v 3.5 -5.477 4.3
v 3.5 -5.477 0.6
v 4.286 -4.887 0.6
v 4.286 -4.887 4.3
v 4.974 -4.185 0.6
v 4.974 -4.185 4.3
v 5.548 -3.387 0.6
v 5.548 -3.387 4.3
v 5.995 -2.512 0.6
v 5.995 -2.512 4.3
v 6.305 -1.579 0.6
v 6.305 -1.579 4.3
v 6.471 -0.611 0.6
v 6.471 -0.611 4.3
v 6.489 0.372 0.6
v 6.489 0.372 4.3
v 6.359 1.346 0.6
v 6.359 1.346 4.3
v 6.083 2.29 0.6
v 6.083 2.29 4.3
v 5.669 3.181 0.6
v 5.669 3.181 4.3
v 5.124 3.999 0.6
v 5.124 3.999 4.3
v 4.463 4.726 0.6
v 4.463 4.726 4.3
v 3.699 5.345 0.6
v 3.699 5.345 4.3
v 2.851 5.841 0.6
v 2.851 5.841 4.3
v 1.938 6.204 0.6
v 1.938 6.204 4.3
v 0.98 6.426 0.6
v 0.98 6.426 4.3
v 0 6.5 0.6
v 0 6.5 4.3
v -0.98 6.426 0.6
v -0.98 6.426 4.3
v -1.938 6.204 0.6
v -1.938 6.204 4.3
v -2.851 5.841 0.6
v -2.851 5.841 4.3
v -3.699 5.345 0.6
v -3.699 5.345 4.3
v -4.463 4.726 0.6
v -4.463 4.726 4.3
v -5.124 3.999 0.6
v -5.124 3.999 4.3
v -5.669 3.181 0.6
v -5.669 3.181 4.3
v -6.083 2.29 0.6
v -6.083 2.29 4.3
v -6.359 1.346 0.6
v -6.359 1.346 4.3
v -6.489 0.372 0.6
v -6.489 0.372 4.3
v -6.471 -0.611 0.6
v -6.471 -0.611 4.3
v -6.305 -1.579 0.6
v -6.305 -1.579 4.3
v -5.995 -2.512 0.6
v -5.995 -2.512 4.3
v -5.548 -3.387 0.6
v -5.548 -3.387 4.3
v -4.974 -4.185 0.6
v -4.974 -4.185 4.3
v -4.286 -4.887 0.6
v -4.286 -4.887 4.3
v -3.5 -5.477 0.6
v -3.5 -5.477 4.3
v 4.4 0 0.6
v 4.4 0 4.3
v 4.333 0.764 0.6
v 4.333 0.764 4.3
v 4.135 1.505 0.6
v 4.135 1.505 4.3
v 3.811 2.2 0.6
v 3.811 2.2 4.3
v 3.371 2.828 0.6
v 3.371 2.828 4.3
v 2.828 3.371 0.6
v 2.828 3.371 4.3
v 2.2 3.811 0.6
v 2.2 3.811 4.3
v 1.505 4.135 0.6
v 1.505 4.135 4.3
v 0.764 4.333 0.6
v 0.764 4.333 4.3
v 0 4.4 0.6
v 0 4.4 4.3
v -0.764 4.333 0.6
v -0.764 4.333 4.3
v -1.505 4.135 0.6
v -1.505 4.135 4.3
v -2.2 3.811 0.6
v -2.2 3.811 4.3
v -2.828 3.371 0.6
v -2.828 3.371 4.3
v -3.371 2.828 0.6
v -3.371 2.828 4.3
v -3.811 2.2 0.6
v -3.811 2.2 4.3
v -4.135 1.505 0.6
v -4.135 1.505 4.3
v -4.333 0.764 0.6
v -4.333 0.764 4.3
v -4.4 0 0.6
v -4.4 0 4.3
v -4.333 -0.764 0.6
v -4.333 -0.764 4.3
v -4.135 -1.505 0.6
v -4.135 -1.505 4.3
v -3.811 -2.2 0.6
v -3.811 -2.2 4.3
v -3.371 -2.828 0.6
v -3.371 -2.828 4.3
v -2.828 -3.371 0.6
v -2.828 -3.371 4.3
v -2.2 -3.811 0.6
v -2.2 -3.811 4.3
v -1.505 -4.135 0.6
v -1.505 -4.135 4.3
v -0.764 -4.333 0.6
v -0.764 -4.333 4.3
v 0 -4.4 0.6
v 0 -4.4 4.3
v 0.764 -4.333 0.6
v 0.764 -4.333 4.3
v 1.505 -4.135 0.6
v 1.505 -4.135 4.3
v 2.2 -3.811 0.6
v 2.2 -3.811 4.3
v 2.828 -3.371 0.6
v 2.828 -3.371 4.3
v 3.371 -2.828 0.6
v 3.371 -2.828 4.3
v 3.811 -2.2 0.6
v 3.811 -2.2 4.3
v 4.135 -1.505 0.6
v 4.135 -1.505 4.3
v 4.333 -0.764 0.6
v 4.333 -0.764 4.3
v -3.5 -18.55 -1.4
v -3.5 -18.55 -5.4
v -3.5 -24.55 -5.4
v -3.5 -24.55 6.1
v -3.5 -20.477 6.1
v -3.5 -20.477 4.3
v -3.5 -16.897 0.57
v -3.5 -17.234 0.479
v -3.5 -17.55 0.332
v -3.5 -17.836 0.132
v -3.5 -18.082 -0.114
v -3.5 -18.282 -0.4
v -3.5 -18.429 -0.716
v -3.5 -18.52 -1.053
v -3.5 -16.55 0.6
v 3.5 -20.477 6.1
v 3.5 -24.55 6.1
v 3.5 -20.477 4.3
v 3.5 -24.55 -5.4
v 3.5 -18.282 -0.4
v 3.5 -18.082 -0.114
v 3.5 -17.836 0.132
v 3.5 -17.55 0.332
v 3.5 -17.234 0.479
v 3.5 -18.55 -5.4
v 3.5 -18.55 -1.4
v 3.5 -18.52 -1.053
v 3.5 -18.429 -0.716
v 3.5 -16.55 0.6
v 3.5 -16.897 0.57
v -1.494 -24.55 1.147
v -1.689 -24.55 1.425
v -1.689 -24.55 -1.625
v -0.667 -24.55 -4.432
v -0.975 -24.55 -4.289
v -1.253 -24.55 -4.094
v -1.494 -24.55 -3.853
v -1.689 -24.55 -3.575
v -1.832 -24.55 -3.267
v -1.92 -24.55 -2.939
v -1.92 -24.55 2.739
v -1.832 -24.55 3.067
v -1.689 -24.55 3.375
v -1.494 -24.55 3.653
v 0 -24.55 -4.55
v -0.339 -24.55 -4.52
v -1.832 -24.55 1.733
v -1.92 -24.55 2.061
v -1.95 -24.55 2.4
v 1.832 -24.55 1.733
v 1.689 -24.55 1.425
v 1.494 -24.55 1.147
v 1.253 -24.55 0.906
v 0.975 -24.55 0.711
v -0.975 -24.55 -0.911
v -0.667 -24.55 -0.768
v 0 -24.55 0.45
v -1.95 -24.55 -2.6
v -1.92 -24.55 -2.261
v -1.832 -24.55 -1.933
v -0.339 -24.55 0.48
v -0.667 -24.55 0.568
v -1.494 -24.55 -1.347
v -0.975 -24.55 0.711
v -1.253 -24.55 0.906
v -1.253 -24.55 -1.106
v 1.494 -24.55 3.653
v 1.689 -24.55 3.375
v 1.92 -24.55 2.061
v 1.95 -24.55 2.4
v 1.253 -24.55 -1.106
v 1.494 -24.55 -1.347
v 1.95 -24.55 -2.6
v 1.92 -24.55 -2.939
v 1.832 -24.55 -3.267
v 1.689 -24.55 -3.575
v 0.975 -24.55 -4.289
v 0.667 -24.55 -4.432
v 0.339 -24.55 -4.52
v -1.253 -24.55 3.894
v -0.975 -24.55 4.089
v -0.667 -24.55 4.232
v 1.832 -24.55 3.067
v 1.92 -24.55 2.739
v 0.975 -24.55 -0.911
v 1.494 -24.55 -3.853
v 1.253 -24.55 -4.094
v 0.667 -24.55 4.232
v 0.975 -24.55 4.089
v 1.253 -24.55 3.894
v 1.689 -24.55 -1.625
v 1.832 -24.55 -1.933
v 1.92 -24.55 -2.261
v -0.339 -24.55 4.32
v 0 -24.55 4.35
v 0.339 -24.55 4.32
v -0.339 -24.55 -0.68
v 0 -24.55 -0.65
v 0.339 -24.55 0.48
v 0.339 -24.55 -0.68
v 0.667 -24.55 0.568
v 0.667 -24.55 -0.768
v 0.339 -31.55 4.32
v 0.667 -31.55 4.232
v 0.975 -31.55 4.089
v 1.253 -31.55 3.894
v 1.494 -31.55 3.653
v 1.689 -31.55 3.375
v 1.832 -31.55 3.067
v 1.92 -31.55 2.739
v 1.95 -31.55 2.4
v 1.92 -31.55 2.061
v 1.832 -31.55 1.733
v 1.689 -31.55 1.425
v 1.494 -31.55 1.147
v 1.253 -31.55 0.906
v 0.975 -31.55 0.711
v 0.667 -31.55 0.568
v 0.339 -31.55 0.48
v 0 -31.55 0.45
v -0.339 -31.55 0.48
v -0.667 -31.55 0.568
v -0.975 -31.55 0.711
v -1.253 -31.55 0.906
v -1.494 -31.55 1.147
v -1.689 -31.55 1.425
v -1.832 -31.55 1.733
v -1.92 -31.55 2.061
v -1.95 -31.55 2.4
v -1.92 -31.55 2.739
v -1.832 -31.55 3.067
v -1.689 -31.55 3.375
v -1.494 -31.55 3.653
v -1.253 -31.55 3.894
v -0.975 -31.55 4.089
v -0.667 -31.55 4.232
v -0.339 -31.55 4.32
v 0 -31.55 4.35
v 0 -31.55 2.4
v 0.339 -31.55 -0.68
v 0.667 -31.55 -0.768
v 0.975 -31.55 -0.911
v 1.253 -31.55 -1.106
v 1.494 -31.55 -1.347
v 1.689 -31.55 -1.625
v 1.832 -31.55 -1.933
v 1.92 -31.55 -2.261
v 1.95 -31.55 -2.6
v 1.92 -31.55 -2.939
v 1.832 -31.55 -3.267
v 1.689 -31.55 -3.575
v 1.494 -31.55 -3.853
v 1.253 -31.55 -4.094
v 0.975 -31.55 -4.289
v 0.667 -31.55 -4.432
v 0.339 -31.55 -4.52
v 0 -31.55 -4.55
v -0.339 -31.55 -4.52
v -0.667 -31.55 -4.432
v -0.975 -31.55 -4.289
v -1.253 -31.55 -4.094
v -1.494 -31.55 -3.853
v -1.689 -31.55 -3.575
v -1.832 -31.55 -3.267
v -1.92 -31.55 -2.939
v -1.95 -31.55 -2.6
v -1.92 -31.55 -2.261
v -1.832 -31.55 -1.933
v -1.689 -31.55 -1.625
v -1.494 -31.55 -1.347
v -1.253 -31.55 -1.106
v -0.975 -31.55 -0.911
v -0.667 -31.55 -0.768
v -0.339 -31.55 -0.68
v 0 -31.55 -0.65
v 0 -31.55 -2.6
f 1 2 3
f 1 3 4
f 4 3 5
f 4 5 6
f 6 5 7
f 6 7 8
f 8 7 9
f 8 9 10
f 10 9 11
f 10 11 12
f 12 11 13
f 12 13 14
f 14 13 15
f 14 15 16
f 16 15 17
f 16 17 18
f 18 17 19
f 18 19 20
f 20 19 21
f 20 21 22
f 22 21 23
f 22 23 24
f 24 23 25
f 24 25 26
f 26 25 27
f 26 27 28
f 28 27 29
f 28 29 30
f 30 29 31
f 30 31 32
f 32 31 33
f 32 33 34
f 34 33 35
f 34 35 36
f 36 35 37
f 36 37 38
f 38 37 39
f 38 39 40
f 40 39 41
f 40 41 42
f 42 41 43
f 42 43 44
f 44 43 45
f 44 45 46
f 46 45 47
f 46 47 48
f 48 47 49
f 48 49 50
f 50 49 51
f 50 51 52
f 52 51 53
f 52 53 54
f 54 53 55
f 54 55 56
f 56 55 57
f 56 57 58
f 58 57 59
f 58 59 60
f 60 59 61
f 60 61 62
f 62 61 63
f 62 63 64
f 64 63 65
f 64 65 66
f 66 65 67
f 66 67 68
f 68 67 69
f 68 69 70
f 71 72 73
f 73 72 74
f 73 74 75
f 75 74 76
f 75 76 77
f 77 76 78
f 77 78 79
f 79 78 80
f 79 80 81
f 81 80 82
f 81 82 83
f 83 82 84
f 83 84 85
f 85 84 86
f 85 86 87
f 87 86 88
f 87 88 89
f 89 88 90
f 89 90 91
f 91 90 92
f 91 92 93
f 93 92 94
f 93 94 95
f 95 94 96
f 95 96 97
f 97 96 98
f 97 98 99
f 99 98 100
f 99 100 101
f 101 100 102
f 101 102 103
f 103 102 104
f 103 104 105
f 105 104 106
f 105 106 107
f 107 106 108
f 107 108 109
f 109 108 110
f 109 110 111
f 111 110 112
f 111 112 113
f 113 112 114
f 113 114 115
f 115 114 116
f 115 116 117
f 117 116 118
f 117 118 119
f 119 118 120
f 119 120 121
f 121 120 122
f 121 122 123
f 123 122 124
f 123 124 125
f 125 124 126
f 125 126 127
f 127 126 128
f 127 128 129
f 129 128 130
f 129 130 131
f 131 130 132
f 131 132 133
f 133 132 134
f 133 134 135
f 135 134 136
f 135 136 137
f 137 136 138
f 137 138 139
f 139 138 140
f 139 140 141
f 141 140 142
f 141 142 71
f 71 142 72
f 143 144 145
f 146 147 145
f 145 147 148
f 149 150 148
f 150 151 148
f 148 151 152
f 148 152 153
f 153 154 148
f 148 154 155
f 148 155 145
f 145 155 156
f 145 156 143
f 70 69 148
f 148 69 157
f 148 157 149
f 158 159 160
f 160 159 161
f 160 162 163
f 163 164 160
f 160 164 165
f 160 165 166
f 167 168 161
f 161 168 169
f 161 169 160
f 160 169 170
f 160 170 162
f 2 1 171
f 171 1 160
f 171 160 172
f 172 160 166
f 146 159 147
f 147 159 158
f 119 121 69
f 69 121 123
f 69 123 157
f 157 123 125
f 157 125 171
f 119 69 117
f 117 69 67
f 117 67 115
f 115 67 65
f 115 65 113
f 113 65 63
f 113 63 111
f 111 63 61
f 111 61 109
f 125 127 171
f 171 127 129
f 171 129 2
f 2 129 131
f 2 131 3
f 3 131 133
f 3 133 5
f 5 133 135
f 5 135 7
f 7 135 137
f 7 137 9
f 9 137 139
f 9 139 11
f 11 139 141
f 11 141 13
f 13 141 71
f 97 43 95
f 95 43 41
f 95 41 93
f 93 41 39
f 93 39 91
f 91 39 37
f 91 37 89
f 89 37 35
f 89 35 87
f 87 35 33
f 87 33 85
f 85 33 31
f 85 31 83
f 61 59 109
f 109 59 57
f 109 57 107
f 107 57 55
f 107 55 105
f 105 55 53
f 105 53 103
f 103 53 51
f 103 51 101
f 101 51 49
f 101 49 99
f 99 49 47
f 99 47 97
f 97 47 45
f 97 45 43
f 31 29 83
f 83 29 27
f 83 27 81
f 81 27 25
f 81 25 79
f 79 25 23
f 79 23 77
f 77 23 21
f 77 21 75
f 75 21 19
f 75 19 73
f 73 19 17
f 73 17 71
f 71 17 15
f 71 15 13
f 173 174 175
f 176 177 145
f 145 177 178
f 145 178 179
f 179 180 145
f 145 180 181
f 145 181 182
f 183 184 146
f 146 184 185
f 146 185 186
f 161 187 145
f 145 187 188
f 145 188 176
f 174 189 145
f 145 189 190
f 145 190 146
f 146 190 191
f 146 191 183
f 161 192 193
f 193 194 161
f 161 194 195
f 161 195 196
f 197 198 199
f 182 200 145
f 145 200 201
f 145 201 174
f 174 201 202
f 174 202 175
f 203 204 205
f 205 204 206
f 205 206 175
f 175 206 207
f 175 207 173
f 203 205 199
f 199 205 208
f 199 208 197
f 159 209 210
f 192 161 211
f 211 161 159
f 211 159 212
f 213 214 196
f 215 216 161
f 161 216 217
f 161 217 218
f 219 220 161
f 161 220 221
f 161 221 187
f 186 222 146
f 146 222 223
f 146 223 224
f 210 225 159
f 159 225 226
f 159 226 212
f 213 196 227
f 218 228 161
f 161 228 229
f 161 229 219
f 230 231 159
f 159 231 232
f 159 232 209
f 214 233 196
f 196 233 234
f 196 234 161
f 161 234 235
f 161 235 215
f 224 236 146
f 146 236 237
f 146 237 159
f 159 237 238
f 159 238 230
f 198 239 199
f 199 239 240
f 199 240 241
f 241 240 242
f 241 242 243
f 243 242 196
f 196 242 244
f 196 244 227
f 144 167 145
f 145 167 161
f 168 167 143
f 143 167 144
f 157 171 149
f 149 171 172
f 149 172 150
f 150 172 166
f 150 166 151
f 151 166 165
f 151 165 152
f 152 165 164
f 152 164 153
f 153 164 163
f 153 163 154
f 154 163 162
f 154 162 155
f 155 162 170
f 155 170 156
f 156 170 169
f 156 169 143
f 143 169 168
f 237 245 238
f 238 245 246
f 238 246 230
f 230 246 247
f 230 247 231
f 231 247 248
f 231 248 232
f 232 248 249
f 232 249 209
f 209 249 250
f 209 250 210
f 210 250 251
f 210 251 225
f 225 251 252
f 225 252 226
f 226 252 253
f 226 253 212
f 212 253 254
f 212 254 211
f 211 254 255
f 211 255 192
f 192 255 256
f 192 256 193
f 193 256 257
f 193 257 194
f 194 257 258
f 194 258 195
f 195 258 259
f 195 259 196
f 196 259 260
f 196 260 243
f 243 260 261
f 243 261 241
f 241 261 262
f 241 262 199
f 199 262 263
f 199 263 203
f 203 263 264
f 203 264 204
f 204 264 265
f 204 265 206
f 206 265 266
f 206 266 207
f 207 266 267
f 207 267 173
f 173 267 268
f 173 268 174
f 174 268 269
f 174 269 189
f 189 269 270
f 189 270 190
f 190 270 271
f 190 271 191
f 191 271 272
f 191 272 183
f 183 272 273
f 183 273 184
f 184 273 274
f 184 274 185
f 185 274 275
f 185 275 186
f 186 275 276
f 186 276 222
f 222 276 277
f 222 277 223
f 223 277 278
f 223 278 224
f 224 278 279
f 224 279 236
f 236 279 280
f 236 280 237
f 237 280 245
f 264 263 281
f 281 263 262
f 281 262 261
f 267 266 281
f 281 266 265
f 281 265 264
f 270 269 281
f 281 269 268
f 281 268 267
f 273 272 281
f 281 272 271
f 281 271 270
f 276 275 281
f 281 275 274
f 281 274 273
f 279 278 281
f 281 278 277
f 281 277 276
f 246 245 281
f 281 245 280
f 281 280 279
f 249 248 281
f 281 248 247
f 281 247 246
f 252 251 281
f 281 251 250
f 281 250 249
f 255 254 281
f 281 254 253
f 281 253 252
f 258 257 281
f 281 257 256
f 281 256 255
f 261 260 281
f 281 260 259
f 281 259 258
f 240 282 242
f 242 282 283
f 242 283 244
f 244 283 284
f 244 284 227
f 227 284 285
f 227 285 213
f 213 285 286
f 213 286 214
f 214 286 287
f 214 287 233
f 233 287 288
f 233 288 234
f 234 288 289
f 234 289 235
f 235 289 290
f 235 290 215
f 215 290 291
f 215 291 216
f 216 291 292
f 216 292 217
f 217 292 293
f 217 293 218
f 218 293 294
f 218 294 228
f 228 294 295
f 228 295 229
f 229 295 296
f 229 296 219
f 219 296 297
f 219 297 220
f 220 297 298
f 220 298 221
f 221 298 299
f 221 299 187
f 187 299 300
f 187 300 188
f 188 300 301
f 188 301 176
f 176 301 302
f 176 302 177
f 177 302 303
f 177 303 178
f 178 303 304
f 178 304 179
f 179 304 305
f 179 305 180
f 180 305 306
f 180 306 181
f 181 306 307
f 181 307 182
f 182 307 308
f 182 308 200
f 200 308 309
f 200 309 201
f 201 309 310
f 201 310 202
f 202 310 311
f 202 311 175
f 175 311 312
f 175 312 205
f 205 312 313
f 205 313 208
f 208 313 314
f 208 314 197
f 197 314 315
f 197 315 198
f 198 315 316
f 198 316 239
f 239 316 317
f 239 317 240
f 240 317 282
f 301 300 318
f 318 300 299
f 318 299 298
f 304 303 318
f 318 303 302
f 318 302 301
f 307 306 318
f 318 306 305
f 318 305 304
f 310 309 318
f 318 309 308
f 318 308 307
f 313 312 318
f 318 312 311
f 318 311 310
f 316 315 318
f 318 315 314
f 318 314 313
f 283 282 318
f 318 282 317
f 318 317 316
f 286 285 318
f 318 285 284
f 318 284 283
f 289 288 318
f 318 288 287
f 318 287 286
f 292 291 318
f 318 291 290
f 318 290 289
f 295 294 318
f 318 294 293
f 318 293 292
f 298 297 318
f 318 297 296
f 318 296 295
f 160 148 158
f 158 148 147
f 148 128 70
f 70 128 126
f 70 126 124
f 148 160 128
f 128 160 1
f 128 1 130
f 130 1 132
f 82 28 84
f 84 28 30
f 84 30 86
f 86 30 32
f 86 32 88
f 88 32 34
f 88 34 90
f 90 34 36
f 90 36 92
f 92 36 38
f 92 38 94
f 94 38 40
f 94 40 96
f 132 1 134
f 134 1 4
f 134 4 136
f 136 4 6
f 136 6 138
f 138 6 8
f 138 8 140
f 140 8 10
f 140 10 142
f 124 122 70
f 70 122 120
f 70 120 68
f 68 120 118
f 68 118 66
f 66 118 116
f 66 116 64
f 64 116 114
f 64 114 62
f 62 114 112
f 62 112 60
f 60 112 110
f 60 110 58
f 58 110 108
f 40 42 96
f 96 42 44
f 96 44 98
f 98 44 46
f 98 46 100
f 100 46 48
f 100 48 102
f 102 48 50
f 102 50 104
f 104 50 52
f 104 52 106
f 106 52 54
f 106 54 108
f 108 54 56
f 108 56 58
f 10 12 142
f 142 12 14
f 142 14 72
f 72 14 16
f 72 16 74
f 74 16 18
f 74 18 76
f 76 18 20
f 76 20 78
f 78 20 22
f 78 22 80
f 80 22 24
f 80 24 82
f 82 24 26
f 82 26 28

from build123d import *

# Parameters (mm, degrees)
BOSS_EXTRUDE1_DEPTH     = 3.7
SKETCH2_W               = 0.6
SKETCH2_H               = 16.95
CUT_EXTRUDE1_DEPTH      = 10
CUT_EXTRUDE1_DEPTH_BACK = 10
SKETCH3_R               = 2.95
SKETCH3_R_2             = 1.5
BOSS_EXTRUDE2_DEPTH     = 3.1
SKETCH4_R               = 2.5
CUT_EXTRUDE2_DEPTH      = 1.5
SKETCH5_R               = 1.5
BOSS_EXTRUDE3_DEPTH     = 0.4
SKETCH6_R               = 2.95
BOSS_EXTRUDE4_DEPTH     = 2.4
SKETCH7_W               = 22.104564564
SKETCH7_H               = 50.546801486
CUT_EXTRUDE3_DEPTH      = 0.6
SKETCH8_R               = 1.5
BOSS_EXTRUDE5_DEPTH     = 2.6
SKETCH9_R               = 5.5
SKETCH9_R_2             = 3.5
BOSS_EXTRUDE6_DEPTH     = 5.5
SKETCH10_W              = 7
SKETCH10_H              = 7
CUT_EXTRUDE4_DEPTH      = 5.5
SKETCH11_W              = 20.865326807
SKETCH11_H              = 17.809349761
CUT_EXTRUDE5_DEPTH      = 10
SKETCH12_W              = 7
SKETCH12_H              = 6
BOSS_EXTRUDE7_DEPTH     = 6
FILLET1_R               = 2
SKETCH13_R              = 1.95
BOSS_EXTRUDE8_DEPTH     = 7
SKETCH14_R              = 2.95
CUT_EXTRUDE6_DEPTH      = 1.5
SKETCH15_R              = 2.95
BOSS_EXTRUDE9_DEPTH     = 4
SKETCH16_R              = 4.4
CUT_EXTRUDE7_DEPTH      = 34.729104643
SKETCH19_W              = 21.129428132
SKETCH19_H              = 30.590898574
CUT_EXTRUDE10_DEPTH     = 0.3


with BuildPart() as part:
    # Sketch1 → Boss-Extrude1 (new body)
    with BuildSketch(Plane.XY):
        with BuildLine():
            ThreePointArc((3.5, -5.477225575), (0, -6.5), (-3.5, -5.477225575))
            Line((-3.5, -5.477225575), (-3.5, -29.522774425))
            ThreePointArc((-3.5, -29.522774425), (0, -28.5), (3.5, -29.522774425))
            Line((3.5, -29.522774425), (3.5, -5.477225575))
        make_face()
        with BuildLine():
            ThreePointArc((-3.5, -4.242640687), (-4.974937186, -2.34520788), (-5.5, 0))
            ThreePointArc((-5.5, 0), (-4.387482194, 3.31662479), (-1.5, 5.291502622))
            ThreePointArc((-1.5, 5.291502622), (0, 5.5), (1.5, 5.291502622))
            ThreePointArc((1.5, 5.291502622), (4.387482194, 3.31662479), (5.5, 0))
            ThreePointArc((5.5, 0), (4.974937186, -2.34520788), (3.5, -4.242640687))
            Line((3.5, -4.242640687), (3.5, -5.477225575))
            ThreePointArc((3.5, -5.477225575), (5.700877125, -3.122498999), (6.5, 0))
            ThreePointArc((6.5, 0), (-3.122498999, 5.700877125), (-3.5, -5.477225575))
            Line((-3.5, -5.477225575), (-3.5, -4.242640687))
        make_face()
        with BuildLine():
            ThreePointArc((3.5, -4.242640687), (0, -5.5), (-3.5, -4.242640687))
            Line((-3.5, -4.242640687), (-3.5, -5.477225575))
            ThreePointArc((-3.5, -5.477225575), (0, -6.5), (3.5, -5.477225575))
            Line((3.5, -5.477225575), (3.5, -4.242640687))
        make_face()
        with BuildLine():
            ThreePointArc((3.5, 0), (0, -3.5), (-3.5, 0))
            Line((-3.5, 0), (-3.5, -4.242640687))
            ThreePointArc((-3.5, -4.242640687), (0, -5.5), (3.5, -4.242640687))
            Line((3.5, -4.242640687), (3.5, 0))
        make_face()
        with BuildLine():
            ThreePointArc((-3.5, -4.242640687), (-4.974937186, -2.34520788), (-5.5, 0))
            ThreePointArc((-5.5, 0), (-4.387482194, 3.31662479), (-1.5, 5.291502622))
            ThreePointArc((-1.5, 5.291502622), (0, 5.5), (1.5, 5.291502622))
            ThreePointArc((1.5, 5.291502622), (4.387482194, 3.31662479), (5.5, 0))
            ThreePointArc((5.5, 0), (4.974937186, -2.34520788), (3.5, -4.242640687))
            Line((3.5, -4.242640687), (3.5, -5.477225575))
            ThreePointArc((3.5, -5.477225575), (5.700877125, -3.122498999), (6.5, 0))
            ThreePointArc((6.5, 0), (-3.122498999, 5.700877125), (-3.5, -5.477225575))
            Line((-3.5, -5.477225575), (-3.5, -4.242640687))
        make_face()
        with BuildLine():
            ThreePointArc((3.5, -4.242640687), (0, -5.5), (-3.5, -4.242640687))
            Line((-3.5, -4.242640687), (-3.5, -5.477225575))
            ThreePointArc((-3.5, -5.477225575), (0, -6.5), (3.5, -5.477225575))
            Line((3.5, -5.477225575), (3.5, -4.242640687))
        make_face()
        with BuildLine():
            ThreePointArc((3.5, -29.522774425), (0, -28.5), (-3.5, -29.522774425))
            Line((-3.5, -29.522774425), (-3.5, -30.757359313))
            ThreePointArc((-3.5, -30.757359313), (0, -29.5), (3.5, -30.757359313))
            Line((3.5, -30.757359313), (3.5, -29.522774425))
        make_face()
        with BuildLine():
            Line((-3.5, -30.757359313), (-3.5, -29.522774425))
            ThreePointArc((-3.5, -29.522774425), (-3.122498999, -40.700877125), (6.5, -35))
            ThreePointArc((6.5, -35), (5.700877125, -31.877501001), (3.5, -29.522774425))
            Line((3.5, -29.522774425), (3.5, -30.757359313))
            ThreePointArc((3.5, -30.757359313), (4.974937186, -32.65479212), (5.5, -35))
            ThreePointArc((5.5, -35), (4.387482194, -38.31662479), (1.5, -40.291502622))
            ThreePointArc((1.5, -40.291502622), (0, -40.5), (-1.5, -40.291502622))
            ThreePointArc((-1.5, -40.291502622), (-4.387482194, -38.31662479), (-5.5, -35))
            ThreePointArc((-5.5, -35), (-4.974937186, -32.65479212), (-3.5, -30.757359313))
        make_face()
        with BuildLine():
            ThreePointArc((3.5, -29.522774425), (0, -28.5), (-3.5, -29.522774425))
            Line((-3.5, -29.522774425), (-3.5, -30.757359313))
            ThreePointArc((-3.5, -30.757359313), (0, -29.5), (3.5, -30.757359313))
            Line((3.5, -30.757359313), (3.5, -29.522774425))
        make_face()
        with BuildLine():
            Line((-3.5, -30.757359313), (-3.5, -29.522774425))
            ThreePointArc((-3.5, -29.522774425), (-3.122498999, -40.700877125), (6.5, -35))
            ThreePointArc((6.5, -35), (5.700877125, -31.877501001), (3.5, -29.522774425))
            Line((3.5, -29.522774425), (3.5, -30.757359313))
            ThreePointArc((3.5, -30.757359313), (4.974937186, -32.65479212), (5.5, -35))
            ThreePointArc((5.5, -35), (4.387482194, -38.31662479), (1.5, -40.291502622))
            ThreePointArc((1.5, -40.291502622), (0, -40.5), (-1.5, -40.291502622))
            ThreePointArc((-1.5, -40.291502622), (-4.387482194, -38.31662479), (-5.5, -35))
            ThreePointArc((-5.5, -35), (-4.974937186, -32.65479212), (-3.5, -30.757359313))
        make_face()
        with BuildLine():
            ThreePointArc((3.5, -30.757359313), (0, -29.5), (-3.5, -30.757359313))
            Line((-3.5, -30.757359313), (-3.5, -35))
            ThreePointArc((-3.5, -35), (0, -31.5), (3.5, -35))
            Line((3.5, -35), (3.5, -30.757359313))
        make_face()
        with BuildLine():
            Line((-3.5, -35), (-3.5, -30.757359313))
            ThreePointArc((-3.5, -30.757359313), (-4.974937186, -32.65479212), (-5.5, -35))
            Line((-5.5, -35), (-3.5, -35))
        make_face()
        with BuildLine():
            ThreePointArc((5.5, -35), (4.974937186, -32.65479212), (3.5, -30.757359313))
            Line((3.5, -30.757359313), (3.5, -35))
            Line((3.5, -35), (5.5, -35))
        make_face()
        with BuildLine():
            ThreePointArc((3.5, -35), (0, -31.5), (-3.5, -35))
            Line((-3.5, -35), (-2.95, -35))
            ThreePointArc((-2.95, -35), (0, -32.05), (2.95, -35))
            Line((2.95, -35), (3.5, -35))
        make_face()
        with BuildLine():
            Line((-2.95, -35), (-3.5, -35))
            ThreePointArc((-3.5, -35), (-2.958039892, -36.870828693), (-1.5, -38.16227766))
            ThreePointArc((-1.5, -38.16227766), (0, -38.5), (1.5, -38.16227766))
            ThreePointArc((1.5, -38.16227766), (2.958039892, -36.870828693), (3.5, -35))
            Line((3.5, -35), (2.95, -35))
            ThreePointArc((2.95, -35), (0, -37.95), (-2.95, -35))
        make_face()
        with BuildLine():
            ThreePointArc((3.5, -35), (0, -31.5), (-3.5, -35))
            Line((-3.5, -35), (-2.95, -35))
            ThreePointArc((-2.95, -35), (0, -32.05), (2.95, -35))
            Line((2.95, -35), (3.5, -35))
        make_face()
        with BuildLine():
            Line((-2.95, -35), (-3.5, -35))
            ThreePointArc((-3.5, -35), (-2.958039892, -36.870828693), (-1.5, -38.16227766))
            ThreePointArc((-1.5, -38.16227766), (0, -38.5), (1.5, -38.16227766))
            ThreePointArc((1.5, -38.16227766), (2.958039892, -36.870828693), (3.5, -35))
            Line((3.5, -35), (2.95, -35))
            ThreePointArc((2.95, -35), (0, -37.95), (-2.95, -35))
        make_face()
        with BuildLine():
            Line((-1.5, 5.291502622), (-1.5, 3.16227766))
            ThreePointArc((-1.5, 3.16227766), (0, 3.5), (1.5, 3.16227766))
            Line((1.5, 3.16227766), (1.5, 5.291502622))
            ThreePointArc((1.5, 5.291502622), (0, 5.5), (-1.5, 5.291502622))
        make_face()
        with BuildLine():
            Line((-3.5, -4.242640687), (-3.5, 0))
            Line((-3.5, 0), (-5.5, 0))
            ThreePointArc((-5.5, 0), (-4.974937186, -2.34520788), (-3.5, -4.242640687))
        make_face()
        with BuildLine():
            Line((5.5, 0), (3.5, 0))
            Line((3.5, 0), (3.5, -4.242640687))
            ThreePointArc((3.5, -4.242640687), (4.974937186, -2.34520788), (5.5, 0))
        make_face()
        with BuildLine():
            ThreePointArc((-1.5, 3.16227766), (-2.958039892, 1.870828693), (-3.5, 0))
            Line((-3.5, 0), (-2.95, 0))
            ThreePointArc((-2.95, 0), (0, 2.95), (2.95, 0))
            Line((2.95, 0), (3.5, 0))
            ThreePointArc((3.5, 0), (2.958039892, 1.870828693), (1.5, 3.16227766))
            ThreePointArc((1.5, 3.16227766), (0, 3.5), (-1.5, 3.16227766))
        make_face()
        with BuildLine():
            Line((-2.95, 0), (-3.5, 0))
            ThreePointArc((-3.5, 0), (0, -3.5), (3.5, 0))
            Line((3.5, 0), (2.95, 0))
            ThreePointArc((2.95, 0), (0, -2.95), (-2.95, 0))
        make_face()
        with BuildLine():
            ThreePointArc((-1.5, 3.16227766), (-2.958039892, 1.870828693), (-3.5, 0))
            Line((-3.5, 0), (-2.95, 0))
            ThreePointArc((-2.95, 0), (0, 2.95), (2.95, 0))
            Line((2.95, 0), (3.5, 0))
            ThreePointArc((3.5, 0), (2.958039892, 1.870828693), (1.5, 3.16227766))
            ThreePointArc((1.5, 3.16227766), (0, 3.5), (-1.5, 3.16227766))
        make_face()
        with BuildLine():
            Line((-2.95, 0), (-3.5, 0))
            ThreePointArc((-3.5, 0), (0, -3.5), (3.5, 0))
            Line((3.5, 0), (2.95, 0))
            ThreePointArc((2.95, 0), (0, -2.95), (-2.95, 0))
        make_face()
        with BuildLine():
            ThreePointArc((1.5, -38.16227766), (0, -38.5), (-1.5, -38.16227766))
            Line((-1.5, -38.16227766), (-1.5, -40.291502622))
            ThreePointArc((-1.5, -40.291502622), (0, -40.5), (1.5, -40.291502622))
            Line((1.5, -40.291502622), (1.5, -38.16227766))
        make_face()
    extrude(amount=BOSS_EXTRUDE1_DEPTH)

    # Sketch2 → Cut-Extrude1 (cut, two sides)
    with BuildSketch(Plane(origin=(0, 0, 0), x_dir=(0, 0, -1), z_dir=(1, 0, 0))) as cut_extrude1_sk:
        with Locations((-3.4, -33.025)):
            Rectangle(SKETCH2_W, SKETCH2_H)
    extrude(amount=CUT_EXTRUDE1_DEPTH, mode=Mode.SUBTRACT)
    extrude(cut_extrude1_sk.sketch, amount=-CUT_EXTRUDE1_DEPTH_BACK, mode=Mode.SUBTRACT)

    # Sketch3 → Boss-Extrude2 (add)
    with BuildSketch(Plane(origin=(0, 0, 0), x_dir=(-1, 0, 0), z_dir=(0, 0, -1))):
        with Locations((0, -35)):
            Circle(SKETCH3_R)
        with Locations((0, -35)):
            Circle(SKETCH3_R_2, mode=Mode.SUBTRACT)
    extrude(amount=-BOSS_EXTRUDE2_DEPTH)

    # Sketch4 → Cut-Extrude2 (cut)
    with BuildSketch(Plane(origin=(0, 0, 0), x_dir=(-1, 0, 0), z_dir=(0, 0, -1))):
        with Locations((0, -35)):
            Circle(SKETCH4_R)
    extrude(amount=-CUT_EXTRUDE2_DEPTH, mode=Mode.SUBTRACT)

    # Sketch5 → Boss-Extrude3 (add)
    with BuildSketch(Plane.XY.offset(3.1)):
        with BuildLine():
            Line((3.5, -24.55), (-3.5, -24.55))
            Line((-3.5, -24.55), (-3.5, -29.522774425))
            ThreePointArc((-3.5, -29.522774425), (0, -41.5), (3.5, -29.522774425))
            Line((3.5, -29.522774425), (3.5, -24.55))
        make_face()
        with BuildLine():
            Line((-5.5, -35), (-3.5, -35))
            ThreePointArc((-3.5, -35), (-2.958039892, -36.870828693), (-1.5, -38.16227766))
            Line((-1.5, -38.16227766), (-1.5, -40.291502622))
            ThreePointArc((-1.5, -40.291502622), (-4.387482194, -38.31662479), (-5.5, -35))
        make_face(mode=Mode.SUBTRACT)
        with BuildLine():
            ThreePointArc((1.5, -38.16227766), (2.958039892, -36.870828693), (3.5, -35))
            Line((3.5, -35), (5.5, -35))
            ThreePointArc((5.5, -35), (4.387482194, -38.31662479), (1.5, -40.291502622))
            Line((1.5, -40.291502622), (1.5, -38.16227766))
        make_face(mode=Mode.SUBTRACT)
        with Locations(Location((0, -35, 0), (0, 0, 180))):
            Circle(SKETCH5_R, mode=Mode.SUBTRACT)
    extrude(amount=BOSS_EXTRUDE3_DEPTH)

    # Sketch6 → Boss-Extrude4 (add)
    with BuildSketch(Plane.XY.offset(3.7)):
        with BuildLine():
            Line((-3.5, -5.477225575), (-3.5, -24.55))
            Line((-3.5, -24.55), (3.5, -24.55))
            Line((3.5, -24.55), (3.5, -5.477225575))
            ThreePointArc((3.5, -5.477225575), (0, 6.5), (-3.5, -5.477225575))
        make_face()
        Circle(SKETCH6_R, mode=Mode.SUBTRACT)
        with BuildLine():
            Line((-1.5, 5.291502622), (-1.5, 3.16227766))
            ThreePointArc((-1.5, 3.16227766), (-2.958039892, 1.870828693), (-3.5, 0))
            Line((-3.5, 0), (-5.5, 0))
            ThreePointArc((-5.5, 0), (-4.387482194, 3.31662479), (-1.5, 5.291502622))
        make_face(mode=Mode.SUBTRACT)
        with BuildLine():
            Line((1.5, 5.291502622), (1.5, 3.16227766))
            ThreePointArc((1.5, 3.16227766), (2.958039892, 1.870828693), (3.5, 0))
            Line((3.5, 0), (5.5, 0))
            ThreePointArc((5.5, 0), (4.387482194, 3.31662479), (1.5, 5.291502622))
        make_face(mode=Mode.SUBTRACT)
    extrude(amount=BOSS_EXTRUDE4_DEPTH)

    # Sketch7 → Cut-Extrude3 (cut)
    with BuildSketch(Plane.XY):
        with Locations((0.952758093, -17.453923436)):
            Rectangle(SKETCH7_W, SKETCH7_H)
    extrude(amount=CUT_EXTRUDE3_DEPTH, mode=Mode.SUBTRACT)

    # Sketch8 → Boss-Extrude5 (add)
    with BuildSketch(Plane.XY.offset(3.5)):
        with BuildLine():
            Line((-3.5, -24.55), (-3.5, -29.522774425))
            ThreePointArc((-3.5, -29.522774425), (0, -28.5), (3.5, -29.522774425))
            Line((3.5, -29.522774425), (3.5, -24.55))
            Line((3.5, -24.55), (-3.5, -24.55))
        make_face()
        with BuildLine():
            ThreePointArc((-3.5, -35), (-2.958039892, -36.870828693), (-1.5, -38.16227766))
            ThreePointArc((-1.5, -38.16227766), (0, -38.5), (1.5, -38.16227766))
            ThreePointArc((1.5, -38.16227766), (2.958039892, -36.870828693), (3.5, -35))
            ThreePointArc((3.5, -35), (0, -31.5), (-3.5, -35))
        make_face()
        with Locations(Location((0, -35, 0), (0, 0, 180))):
            Circle(SKETCH8_R, mode=Mode.SUBTRACT)
        with BuildLine():
            Line((-5.5, -35), (-3.5, -35))
            ThreePointArc((-3.5, -35), (0, -31.5), (3.5, -35))
            Line((3.5, -35), (5.5, -35))
            ThreePointArc((5.5, -35), (4.062019202, -31.291900756), (0.5, -29.522774425))
            Line((0.5, -29.522774425), (-0.5, -29.522774425))
            ThreePointArc((-0.5, -29.522774425), (-4.062019202, -31.291900756), (-5.5, -35))
        make_face()
        with BuildLine():
            ThreePointArc((1.5, -40.291502622), (0, -40.5), (-1.5, -40.291502622))
            ThreePointArc((-1.5, -40.291502622), (-4.387482194, -38.31662479), (-5.5, -35))
            ThreePointArc((-5.5, -35), (-4.062019202, -31.291900756), (-0.5, -29.522774425))
            Line((-0.5, -29.522774425), (-3.5, -29.522774425))
            ThreePointArc((-3.5, -29.522774425), (-3.122498999, -40.700877125), (6.5, -35))
            ThreePointArc((6.5, -35), (5.700877125, -31.877501001), (3.5, -29.522774425))
            Line((3.5, -29.522774425), (0.5, -29.522774425))
            ThreePointArc((0.5, -29.522774425), (4.062019202, -31.291900756), (5.5, -35))
            ThreePointArc((5.5, -35), (4.387482194, -38.31662479), (1.5, -40.291502622))
        make_face()
        with BuildLine():
            ThreePointArc((1.5, -38.16227766), (0, -38.5), (-1.5, -38.16227766))
            Line((-1.5, -38.16227766), (-1.5, -40.291502622))
            ThreePointArc((-1.5, -40.291502622), (0, -40.5), (1.5, -40.291502622))
            Line((1.5, -40.291502622), (1.5, -38.16227766))
        make_face()
        with BuildLine():
            ThreePointArc((0.5, -29.522774425), (0, -29.5), (-0.5, -29.522774425))
            Line((-0.5, -29.522774425), (0.5, -29.522774425))
        make_face()
        with BuildLine():
            ThreePointArc((1.5, -40.291502622), (0, -40.5), (-1.5, -40.291502622))
            ThreePointArc((-1.5, -40.291502622), (-4.387482194, -38.31662479), (-5.5, -35))
            ThreePointArc((-5.5, -35), (-4.062019202, -31.291900756), (-0.5, -29.522774425))
            Line((-0.5, -29.522774425), (-3.5, -29.522774425))
            ThreePointArc((-3.5, -29.522774425), (-3.122498999, -40.700877125), (6.5, -35))
            ThreePointArc((6.5, -35), (5.700877125, -31.877501001), (3.5, -29.522774425))
            Line((3.5, -29.522774425), (0.5, -29.522774425))
            ThreePointArc((0.5, -29.522774425), (4.062019202, -31.291900756), (5.5, -35))
            ThreePointArc((5.5, -35), (4.387482194, -38.31662479), (1.5, -40.291502622))
        make_face()
        with BuildLine():
            Line((-3.5, -29.522774425), (-0.5, -29.522774425))
            ThreePointArc((-0.5, -29.522774425), (0, -29.5), (0.5, -29.522774425))
            Line((0.5, -29.522774425), (3.5, -29.522774425))
            ThreePointArc((3.5, -29.522774425), (0, -28.5), (-3.5, -29.522774425))
        make_face()
    extrude(amount=BOSS_EXTRUDE5_DEPTH)

    # Sketch9 → Boss-Extrude6 (add)
    with BuildSketch(Plane.XY.offset(6.1)):
        with Locations((0, -35)):
            Circle(SKETCH9_R)
        with Locations((0, -35)):
            Circle(SKETCH9_R_2, mode=Mode.SUBTRACT)
    extrude(amount=-BOSS_EXTRUDE6_DEPTH)

    # Sketch10 → Cut-Extrude4 (cut)
    with BuildSketch(Plane.XY.offset(6.1)):
        with Locations((0, -35)):
            Rectangle(SKETCH10_W, SKETCH10_H)
    extrude(amount=-CUT_EXTRUDE4_DEPTH, mode=Mode.SUBTRACT)

    # Sketch11 → Cut-Extrude5 (cut)
    with BuildSketch(Plane.XY.offset(6.1)):
        with Locations((0.447606021, -33.454674881)):
            Rectangle(SKETCH11_W, SKETCH11_H)
    extrude(amount=-CUT_EXTRUDE5_DEPTH, mode=Mode.SUBTRACT)

    # Sketch12 → Boss-Extrude7 (add)
    with BuildSketch(Plane.XZ.offset(24.55)):
        with Locations((0, -2.4)):
            Rectangle(SKETCH12_W, SKETCH12_H)
    extrude(amount=-BOSS_EXTRUDE7_DEPTH)

    # Fillet1
    fillet1_edges = [part.edges().sort_by_distance(p)[0] for p in [
        (0, -18.55, 0.6),
    ]]
    fillet(fillet1_edges, radius=FILLET1_R)

    # Sketch13 → Boss-Extrude8 (add)
    with BuildSketch(Plane.XZ.offset(24.55)):
        with Locations(Location((0, 2.4, 0), (0, 0, 270))):
            Circle(SKETCH13_R)
        with Locations(Location((0, -2.6, 0), (0, 0, 90))):
            Circle(SKETCH13_R)
    extrude(amount=BOSS_EXTRUDE8_DEPTH)

    # Sketch14 → Cut-Extrude6 (cut)
    with BuildSketch(Plane.XY.offset(6.1)):
        with BuildLine():
            ThreePointArc((3.5, -5.477225575), (0, -6.5), (-3.5, -5.477225575))
            Line((-3.5, -5.477225575), (-3.5, -20.477225575))
            Line((-3.5, -20.477225575), (3.5, -20.477225575))
            Line((3.5, -20.477225575), (3.5, -5.477225575))
        make_face()
        with BuildLine():
            Line((-3.5, -5.477225575), (3.5, -5.477225575))
            ThreePointArc((3.5, -5.477225575), (0, 6.5), (-3.5, -5.477225575))
        make_face()
        with Locations(Location((0, 0, 0), (0, 0, 180))):
            Circle(SKETCH14_R, mode=Mode.SUBTRACT)
        with BuildLine():
            ThreePointArc((3.5, 0), (2.958039892, 1.870828693), (1.5, 3.16227766))
            Line((1.5, 3.16227766), (1.5, 5.291502622))
            ThreePointArc((1.5, 5.291502622), (4.387482194, 3.31662479), (5.5, 0))
            Line((5.5, 0), (3.5, 0))
        make_face(mode=Mode.SUBTRACT)
        with BuildLine():
            ThreePointArc((-1.5, 3.16227766), (-2.958039892, 1.870828693), (-3.5, 0))
            Line((-3.5, 0), (-5.5, 0))
            ThreePointArc((-5.5, 0), (-4.387482194, 3.31662479), (-1.5, 5.291502622))
            Line((-1.5, 5.291502622), (-1.5, 3.16227766))
        make_face(mode=Mode.SUBTRACT)
        with BuildLine():
            Line((3.5, -5.477225575), (-3.5, -5.477225575))
            ThreePointArc((-3.5, -5.477225575), (0, -6.5), (3.5, -5.477225575))
        make_face()
    extrude(amount=-CUT_EXTRUDE6_DEPTH, mode=Mode.SUBTRACT)

    # Sketch15 → Boss-Extrude9 (add)
    with BuildSketch(Plane.XY.offset(4.6)):
        with BuildLine():
            Line((3.5, -20.477225575), (3.5, -5.477225575))
            ThreePointArc((3.5, -5.477225575), (0, 6.5), (-3.5, -5.477225575))
            Line((-3.5, -5.477225575), (-3.5, -20.477225575))
            Line((-3.5, -20.477225575), (3.5, -20.477225575))
        make_face()
        with Locations(Location((0, 0, 0), (0, 0, 180))):
            Circle(SKETCH15_R, mode=Mode.SUBTRACT)
    extrude(amount=-BOSS_EXTRUDE9_DEPTH)

    # Sketch16 → Cut-Extrude7 (cut, through all)
    with BuildSketch(Plane.XY.offset(4.6)):
        Circle(SKETCH16_R)
    extrude(amount=-CUT_EXTRUDE7_DEPTH, mode=Mode.SUBTRACT)

    # Sketch19 → Cut-Extrude10 (cut)
    with BuildSketch(Plane.XY.offset(4.6)):
        with Locations((-0.188655608, -5.181776288)):
            Rectangle(SKETCH19_W, SKETCH19_H)
    extrude(amount=-CUT_EXTRUDE10_DEPTH, mode=Mode.SUBTRACT)


solid = part.part
